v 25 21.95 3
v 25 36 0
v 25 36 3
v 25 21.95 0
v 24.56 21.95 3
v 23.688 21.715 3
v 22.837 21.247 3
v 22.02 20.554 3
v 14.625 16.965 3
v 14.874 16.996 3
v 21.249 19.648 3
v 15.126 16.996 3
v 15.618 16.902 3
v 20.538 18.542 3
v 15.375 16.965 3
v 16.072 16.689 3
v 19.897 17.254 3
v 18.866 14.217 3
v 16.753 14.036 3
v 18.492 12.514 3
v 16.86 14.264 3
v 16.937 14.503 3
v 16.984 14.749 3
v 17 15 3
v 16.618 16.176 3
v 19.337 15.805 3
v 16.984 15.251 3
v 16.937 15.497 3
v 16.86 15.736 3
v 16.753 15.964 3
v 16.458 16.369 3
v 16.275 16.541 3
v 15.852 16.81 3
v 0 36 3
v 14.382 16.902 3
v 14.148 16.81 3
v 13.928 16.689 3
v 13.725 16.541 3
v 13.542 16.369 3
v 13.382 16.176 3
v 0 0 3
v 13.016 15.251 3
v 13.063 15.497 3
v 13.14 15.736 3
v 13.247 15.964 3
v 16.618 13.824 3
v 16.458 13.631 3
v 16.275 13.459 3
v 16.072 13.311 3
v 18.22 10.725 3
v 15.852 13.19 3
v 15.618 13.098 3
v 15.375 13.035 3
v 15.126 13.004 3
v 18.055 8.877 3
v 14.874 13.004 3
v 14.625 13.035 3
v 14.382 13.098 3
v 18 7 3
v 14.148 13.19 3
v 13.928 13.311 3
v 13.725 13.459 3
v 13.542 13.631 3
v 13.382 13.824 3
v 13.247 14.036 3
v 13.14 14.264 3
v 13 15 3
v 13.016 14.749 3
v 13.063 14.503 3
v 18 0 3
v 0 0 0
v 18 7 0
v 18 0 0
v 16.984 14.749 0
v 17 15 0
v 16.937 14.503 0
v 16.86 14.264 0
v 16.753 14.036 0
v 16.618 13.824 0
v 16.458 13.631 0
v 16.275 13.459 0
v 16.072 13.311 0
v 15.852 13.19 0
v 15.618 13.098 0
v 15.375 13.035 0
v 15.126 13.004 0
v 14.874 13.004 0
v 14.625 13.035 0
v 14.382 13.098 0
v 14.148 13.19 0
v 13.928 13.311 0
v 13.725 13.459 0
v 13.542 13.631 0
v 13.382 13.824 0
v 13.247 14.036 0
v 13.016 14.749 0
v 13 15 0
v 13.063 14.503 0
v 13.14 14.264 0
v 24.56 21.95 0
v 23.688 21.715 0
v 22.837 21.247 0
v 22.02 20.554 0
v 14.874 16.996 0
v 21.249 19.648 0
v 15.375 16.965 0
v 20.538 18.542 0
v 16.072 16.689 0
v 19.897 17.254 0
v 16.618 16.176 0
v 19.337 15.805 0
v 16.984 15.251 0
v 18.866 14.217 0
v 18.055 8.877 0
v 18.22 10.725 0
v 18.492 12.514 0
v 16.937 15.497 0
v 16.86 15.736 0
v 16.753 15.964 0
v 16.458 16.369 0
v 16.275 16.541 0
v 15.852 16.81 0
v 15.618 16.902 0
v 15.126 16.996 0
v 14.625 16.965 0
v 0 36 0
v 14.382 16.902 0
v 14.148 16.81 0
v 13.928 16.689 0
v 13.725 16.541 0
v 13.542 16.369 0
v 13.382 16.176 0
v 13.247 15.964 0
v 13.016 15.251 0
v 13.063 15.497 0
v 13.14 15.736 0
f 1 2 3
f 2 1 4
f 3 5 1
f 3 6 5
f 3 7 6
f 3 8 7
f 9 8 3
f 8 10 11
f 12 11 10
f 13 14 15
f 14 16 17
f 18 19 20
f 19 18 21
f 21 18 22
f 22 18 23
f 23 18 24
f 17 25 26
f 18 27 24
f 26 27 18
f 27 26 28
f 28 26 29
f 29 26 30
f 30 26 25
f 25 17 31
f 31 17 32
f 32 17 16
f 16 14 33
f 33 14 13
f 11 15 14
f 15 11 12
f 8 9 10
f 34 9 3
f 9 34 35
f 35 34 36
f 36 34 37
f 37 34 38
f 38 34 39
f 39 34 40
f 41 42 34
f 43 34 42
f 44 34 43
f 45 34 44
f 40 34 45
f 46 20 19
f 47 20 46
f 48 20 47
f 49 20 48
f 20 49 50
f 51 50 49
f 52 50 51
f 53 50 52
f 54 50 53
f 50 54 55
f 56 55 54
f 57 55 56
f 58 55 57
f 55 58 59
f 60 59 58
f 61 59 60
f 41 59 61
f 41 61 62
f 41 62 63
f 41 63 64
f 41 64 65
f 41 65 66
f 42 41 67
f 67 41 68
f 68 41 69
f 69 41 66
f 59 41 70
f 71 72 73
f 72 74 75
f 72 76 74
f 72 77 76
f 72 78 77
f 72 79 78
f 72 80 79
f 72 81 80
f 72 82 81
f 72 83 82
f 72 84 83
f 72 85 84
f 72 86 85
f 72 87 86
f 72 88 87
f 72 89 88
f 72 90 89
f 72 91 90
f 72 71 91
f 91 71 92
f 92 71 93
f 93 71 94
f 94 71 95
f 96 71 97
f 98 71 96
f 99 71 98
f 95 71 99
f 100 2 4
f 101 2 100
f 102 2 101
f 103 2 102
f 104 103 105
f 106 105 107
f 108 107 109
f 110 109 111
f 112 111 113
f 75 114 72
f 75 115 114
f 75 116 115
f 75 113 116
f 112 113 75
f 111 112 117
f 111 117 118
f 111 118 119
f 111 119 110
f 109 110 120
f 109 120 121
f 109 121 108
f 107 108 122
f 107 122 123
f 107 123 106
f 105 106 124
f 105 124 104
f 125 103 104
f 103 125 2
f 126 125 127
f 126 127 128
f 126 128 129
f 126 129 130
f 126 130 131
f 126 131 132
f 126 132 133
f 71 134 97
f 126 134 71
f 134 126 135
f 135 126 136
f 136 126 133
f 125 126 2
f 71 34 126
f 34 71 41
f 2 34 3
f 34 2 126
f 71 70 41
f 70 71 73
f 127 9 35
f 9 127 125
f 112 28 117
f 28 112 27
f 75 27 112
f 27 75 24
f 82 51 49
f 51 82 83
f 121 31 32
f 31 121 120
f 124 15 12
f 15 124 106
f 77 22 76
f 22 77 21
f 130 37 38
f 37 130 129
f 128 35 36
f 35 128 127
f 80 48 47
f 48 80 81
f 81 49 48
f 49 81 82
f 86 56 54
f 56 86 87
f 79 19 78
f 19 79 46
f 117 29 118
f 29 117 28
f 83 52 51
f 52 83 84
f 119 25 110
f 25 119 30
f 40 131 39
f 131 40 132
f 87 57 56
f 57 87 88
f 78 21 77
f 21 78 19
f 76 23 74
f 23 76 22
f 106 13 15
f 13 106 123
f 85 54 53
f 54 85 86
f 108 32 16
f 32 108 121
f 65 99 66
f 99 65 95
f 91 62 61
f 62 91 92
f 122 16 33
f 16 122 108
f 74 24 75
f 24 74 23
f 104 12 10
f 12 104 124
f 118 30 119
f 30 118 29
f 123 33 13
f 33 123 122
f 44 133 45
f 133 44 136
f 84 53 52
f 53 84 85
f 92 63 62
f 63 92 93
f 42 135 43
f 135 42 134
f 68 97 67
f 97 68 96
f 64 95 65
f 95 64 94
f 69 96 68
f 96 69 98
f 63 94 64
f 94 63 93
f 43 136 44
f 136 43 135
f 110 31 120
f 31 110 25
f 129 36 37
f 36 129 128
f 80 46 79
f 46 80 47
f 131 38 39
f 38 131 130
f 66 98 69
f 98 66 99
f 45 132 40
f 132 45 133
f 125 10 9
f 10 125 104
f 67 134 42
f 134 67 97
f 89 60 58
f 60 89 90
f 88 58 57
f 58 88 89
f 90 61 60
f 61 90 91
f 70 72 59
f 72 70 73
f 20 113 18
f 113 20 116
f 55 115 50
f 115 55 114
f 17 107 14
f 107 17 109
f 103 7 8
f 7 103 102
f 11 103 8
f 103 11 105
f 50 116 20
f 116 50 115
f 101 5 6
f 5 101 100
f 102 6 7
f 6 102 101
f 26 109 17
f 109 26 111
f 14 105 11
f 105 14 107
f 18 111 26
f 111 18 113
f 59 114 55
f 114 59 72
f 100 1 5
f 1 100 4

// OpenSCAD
h = 36; w = 25; d = 3;

$fn = $preview ? 45 : 50;
screwwidth = 2;

difference() {
	cube([w, h, d]);
	translate([15, 15, 0]) cylinder(d, r = screwwidth);
	#translate([w - 7, 0, 0]) cube([7, 7, d]);
	#translate([w, 7, 0]) scale([1, 2.14, 1]) cylinder(d, r = 7);
	% translate([w - 1, h - 14, 0]) cube([1, 14, d]);
}
